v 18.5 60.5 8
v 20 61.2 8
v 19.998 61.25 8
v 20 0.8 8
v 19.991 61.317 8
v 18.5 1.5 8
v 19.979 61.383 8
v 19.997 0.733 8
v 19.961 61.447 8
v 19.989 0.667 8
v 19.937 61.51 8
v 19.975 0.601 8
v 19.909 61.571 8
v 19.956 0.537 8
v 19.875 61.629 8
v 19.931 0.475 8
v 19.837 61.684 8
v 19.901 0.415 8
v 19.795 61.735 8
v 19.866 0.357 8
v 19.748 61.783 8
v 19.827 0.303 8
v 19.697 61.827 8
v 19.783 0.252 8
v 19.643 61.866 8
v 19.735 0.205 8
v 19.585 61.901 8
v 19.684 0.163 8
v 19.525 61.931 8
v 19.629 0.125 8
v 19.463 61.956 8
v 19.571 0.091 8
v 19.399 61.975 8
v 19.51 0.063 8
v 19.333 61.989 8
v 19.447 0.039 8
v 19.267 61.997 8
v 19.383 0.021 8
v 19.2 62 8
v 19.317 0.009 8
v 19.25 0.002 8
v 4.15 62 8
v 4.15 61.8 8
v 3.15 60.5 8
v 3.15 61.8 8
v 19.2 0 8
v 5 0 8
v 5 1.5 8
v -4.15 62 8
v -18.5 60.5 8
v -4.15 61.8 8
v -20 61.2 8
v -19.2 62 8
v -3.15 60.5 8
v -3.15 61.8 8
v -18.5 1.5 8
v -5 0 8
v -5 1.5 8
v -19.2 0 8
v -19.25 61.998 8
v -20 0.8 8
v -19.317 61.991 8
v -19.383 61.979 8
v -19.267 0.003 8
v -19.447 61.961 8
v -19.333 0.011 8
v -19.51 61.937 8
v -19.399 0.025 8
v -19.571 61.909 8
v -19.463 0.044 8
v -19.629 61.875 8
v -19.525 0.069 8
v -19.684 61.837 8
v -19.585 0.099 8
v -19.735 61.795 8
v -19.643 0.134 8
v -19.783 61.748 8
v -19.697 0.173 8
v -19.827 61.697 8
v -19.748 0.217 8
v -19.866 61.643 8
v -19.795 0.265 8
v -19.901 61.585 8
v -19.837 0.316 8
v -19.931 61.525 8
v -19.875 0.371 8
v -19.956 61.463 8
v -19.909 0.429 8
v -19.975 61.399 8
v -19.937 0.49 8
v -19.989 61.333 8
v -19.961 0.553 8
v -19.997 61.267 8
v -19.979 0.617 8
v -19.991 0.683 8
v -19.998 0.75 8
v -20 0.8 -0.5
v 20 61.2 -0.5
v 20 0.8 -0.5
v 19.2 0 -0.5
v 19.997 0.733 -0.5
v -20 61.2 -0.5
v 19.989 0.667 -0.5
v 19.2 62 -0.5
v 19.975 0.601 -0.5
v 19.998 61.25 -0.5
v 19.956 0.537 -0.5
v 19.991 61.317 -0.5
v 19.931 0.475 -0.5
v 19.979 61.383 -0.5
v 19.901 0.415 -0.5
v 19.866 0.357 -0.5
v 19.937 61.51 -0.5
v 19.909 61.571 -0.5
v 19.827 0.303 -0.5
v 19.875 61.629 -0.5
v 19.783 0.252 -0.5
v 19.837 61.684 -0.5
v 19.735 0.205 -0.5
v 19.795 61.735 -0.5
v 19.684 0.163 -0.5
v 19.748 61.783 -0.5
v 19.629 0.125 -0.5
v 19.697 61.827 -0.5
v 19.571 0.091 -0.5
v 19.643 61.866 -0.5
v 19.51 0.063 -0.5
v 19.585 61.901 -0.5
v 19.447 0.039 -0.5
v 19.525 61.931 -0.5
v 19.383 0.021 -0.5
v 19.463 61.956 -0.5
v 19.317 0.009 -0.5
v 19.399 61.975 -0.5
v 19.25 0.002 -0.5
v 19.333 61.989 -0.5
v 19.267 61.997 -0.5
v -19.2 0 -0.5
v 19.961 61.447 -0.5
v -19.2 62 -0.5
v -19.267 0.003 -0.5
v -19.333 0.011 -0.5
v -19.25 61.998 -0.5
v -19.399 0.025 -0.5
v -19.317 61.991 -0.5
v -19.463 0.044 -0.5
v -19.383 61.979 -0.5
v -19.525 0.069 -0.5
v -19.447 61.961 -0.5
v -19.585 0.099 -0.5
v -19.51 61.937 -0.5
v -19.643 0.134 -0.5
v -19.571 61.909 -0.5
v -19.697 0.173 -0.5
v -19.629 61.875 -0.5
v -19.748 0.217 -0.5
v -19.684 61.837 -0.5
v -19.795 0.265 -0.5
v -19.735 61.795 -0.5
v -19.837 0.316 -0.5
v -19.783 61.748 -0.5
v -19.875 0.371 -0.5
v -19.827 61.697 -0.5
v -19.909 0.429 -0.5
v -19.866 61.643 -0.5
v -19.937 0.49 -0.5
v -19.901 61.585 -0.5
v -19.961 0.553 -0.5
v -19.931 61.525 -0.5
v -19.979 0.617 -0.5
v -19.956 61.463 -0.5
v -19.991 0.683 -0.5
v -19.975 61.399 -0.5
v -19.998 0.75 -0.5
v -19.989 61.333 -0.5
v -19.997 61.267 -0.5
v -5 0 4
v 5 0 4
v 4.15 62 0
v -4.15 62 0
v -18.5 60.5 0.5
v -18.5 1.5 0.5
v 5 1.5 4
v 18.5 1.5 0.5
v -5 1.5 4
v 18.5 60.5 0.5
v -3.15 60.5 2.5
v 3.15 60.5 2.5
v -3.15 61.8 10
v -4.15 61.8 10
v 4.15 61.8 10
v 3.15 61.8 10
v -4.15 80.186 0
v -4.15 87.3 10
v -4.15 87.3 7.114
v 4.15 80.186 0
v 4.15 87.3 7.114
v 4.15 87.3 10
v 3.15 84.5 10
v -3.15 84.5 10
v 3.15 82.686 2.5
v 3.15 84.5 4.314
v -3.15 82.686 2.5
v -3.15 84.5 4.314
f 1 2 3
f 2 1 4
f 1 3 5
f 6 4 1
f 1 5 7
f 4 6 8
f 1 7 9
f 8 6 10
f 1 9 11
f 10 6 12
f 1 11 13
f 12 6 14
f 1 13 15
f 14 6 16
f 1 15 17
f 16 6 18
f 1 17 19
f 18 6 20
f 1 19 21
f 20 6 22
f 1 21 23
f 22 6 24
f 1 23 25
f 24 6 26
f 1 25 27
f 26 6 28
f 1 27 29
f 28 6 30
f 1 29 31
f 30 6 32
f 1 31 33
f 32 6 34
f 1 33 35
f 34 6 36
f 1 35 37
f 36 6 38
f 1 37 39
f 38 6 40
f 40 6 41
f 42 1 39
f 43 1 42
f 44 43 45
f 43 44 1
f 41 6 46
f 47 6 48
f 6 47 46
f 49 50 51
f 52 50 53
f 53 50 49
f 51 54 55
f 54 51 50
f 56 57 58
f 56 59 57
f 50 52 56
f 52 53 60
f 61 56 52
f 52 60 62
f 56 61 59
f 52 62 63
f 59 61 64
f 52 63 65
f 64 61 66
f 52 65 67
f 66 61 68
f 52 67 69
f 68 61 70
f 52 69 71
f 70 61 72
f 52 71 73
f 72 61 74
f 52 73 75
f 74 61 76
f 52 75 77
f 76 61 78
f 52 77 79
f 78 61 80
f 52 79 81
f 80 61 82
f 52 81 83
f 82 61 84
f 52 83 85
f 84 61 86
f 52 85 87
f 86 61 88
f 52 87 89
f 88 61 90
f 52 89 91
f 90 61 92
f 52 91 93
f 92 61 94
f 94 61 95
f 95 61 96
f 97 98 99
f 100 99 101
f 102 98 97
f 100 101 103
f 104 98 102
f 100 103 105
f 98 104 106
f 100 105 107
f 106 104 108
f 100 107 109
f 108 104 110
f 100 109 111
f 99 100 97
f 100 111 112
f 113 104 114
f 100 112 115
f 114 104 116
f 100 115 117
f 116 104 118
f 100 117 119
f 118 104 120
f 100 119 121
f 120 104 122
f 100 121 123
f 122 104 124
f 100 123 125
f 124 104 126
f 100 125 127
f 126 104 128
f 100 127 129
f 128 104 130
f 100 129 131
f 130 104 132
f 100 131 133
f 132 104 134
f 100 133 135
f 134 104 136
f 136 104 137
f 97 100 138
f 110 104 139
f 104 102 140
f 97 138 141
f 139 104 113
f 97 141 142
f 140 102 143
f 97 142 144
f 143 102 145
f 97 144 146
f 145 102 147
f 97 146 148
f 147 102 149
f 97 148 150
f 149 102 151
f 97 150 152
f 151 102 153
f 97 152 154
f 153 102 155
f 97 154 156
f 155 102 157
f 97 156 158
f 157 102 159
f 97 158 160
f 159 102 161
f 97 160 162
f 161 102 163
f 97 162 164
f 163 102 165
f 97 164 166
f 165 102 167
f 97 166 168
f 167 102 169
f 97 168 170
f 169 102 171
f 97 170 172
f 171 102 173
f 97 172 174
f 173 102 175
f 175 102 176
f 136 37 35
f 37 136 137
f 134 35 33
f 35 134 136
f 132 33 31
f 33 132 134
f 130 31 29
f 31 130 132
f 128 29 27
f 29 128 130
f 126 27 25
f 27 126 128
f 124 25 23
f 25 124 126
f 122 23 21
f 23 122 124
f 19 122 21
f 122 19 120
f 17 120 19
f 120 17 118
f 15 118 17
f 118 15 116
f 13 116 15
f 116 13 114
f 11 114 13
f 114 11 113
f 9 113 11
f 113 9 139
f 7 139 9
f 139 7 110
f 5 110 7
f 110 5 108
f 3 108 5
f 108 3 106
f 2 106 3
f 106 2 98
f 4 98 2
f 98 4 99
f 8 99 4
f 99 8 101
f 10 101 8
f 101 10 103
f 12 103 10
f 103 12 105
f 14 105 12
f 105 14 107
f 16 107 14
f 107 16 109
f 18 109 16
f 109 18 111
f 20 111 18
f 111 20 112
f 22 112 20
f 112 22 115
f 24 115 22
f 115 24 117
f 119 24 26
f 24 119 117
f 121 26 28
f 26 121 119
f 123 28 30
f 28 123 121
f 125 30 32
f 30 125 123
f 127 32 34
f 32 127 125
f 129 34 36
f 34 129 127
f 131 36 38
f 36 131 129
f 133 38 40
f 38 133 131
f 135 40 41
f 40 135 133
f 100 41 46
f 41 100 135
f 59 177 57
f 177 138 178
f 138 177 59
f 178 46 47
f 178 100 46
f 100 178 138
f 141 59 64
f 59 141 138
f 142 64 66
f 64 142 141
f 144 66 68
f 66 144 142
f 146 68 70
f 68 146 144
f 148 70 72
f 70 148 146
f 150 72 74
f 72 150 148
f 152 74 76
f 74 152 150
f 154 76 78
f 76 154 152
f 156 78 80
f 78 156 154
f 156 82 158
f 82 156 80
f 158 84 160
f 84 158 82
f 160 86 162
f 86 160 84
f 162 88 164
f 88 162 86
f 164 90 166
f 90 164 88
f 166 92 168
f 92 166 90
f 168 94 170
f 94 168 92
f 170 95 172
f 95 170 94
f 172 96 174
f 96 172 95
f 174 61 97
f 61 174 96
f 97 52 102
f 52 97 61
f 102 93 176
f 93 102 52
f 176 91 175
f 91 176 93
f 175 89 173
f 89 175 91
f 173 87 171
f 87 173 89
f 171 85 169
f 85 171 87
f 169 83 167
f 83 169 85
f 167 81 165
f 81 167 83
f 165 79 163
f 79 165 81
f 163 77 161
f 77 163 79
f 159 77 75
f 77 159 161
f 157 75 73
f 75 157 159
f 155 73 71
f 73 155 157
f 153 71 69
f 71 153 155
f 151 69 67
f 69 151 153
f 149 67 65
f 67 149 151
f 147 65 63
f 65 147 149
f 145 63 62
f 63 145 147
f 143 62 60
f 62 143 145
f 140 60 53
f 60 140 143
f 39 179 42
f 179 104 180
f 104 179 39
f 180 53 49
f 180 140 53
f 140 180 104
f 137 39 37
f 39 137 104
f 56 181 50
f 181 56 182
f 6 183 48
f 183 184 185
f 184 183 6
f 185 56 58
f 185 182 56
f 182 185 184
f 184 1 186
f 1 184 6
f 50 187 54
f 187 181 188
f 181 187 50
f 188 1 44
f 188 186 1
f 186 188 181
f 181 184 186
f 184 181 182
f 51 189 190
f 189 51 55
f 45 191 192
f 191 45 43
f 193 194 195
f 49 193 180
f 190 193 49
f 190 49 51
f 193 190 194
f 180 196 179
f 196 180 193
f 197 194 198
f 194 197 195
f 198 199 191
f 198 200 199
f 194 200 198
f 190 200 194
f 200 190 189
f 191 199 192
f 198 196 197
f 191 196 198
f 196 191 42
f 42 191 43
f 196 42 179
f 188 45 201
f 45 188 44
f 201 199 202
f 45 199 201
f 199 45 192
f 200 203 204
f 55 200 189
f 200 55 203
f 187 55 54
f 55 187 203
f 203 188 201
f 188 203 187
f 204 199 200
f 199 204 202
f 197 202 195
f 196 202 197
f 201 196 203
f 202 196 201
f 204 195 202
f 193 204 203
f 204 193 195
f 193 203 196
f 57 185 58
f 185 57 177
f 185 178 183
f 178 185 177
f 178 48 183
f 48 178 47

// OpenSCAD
$fn=75;

BOX_W = 38.4;
BOX_L = 60.4;
BOX_H = 8.5;

WALL = 1.0;

CORNER_RADIUS = 0.8;

MIC_OUTSIDE_W=8.3;
MIC_OUTSIDE_H=10.0;

MIC_INSIDE_W=6.3;
MIC_L=25.5;

MIC_OFFSET_X = 0;
MIC_OFFSET_Y = -20.4;
MIC_OFFSET_Z = 0;

VENT_OFFSET = -4.5;
VENT_L = 19.0;
VENT_R = -19.0;

module roundedRectangle(width, length, radius) {
    difference() {
        offset(r=radius) square([width, length], center=true);
        offset(r=radius - WALL) square([width - WALL, length - WALL], center=true);
    }
}

module mainLid() {
    // sides of box
    linear_extrude(BOX_H)
    roundedRectangle(BOX_W, BOX_L, CORNER_RADIUS);
    // base of box
    translate([0, 0, BOX_H - WALL]) {
        linear_extrude(WALL) square([BOX_W, BOX_L], center=true);
    }
}

module micBox() {
        translate([MIC_OFFSET_X, MIC_OFFSET_Y, MIC_OFFSET_Z]) {
            translate([0, -10.4, 3])
            rotate([90, 0, 0])
            linear_extrude(MIC_L) square([MIC_OUTSIDE_W, MIC_OUTSIDE_H], center=true);
        }
    }
//}


module cutouts() {
    rotate([180, 0, 0]) {   // Flipping the entire object along the X axis
        translate([MIC_OFFSET_X, MIC_OFFSET_Y, MIC_OFFSET_Z]) {
            // Inside mic channel
            translate([0, -3.5, BOX_H-8])
            rotate([90, 0, 0])
            linear_extrude(MIC_L+4.1) square([MIC_INSIDE_W, MIC_OUTSIDE_H], center=true);
        }
    }
    
    // front of keel slope
    translate([-5, MIC_L+29.0, -14])
    rotate([45, 0, 0])
    //(x, z, y)
    cube([10, 11, 8]); 
    
    // Cable exit
    translate([0, -29.0, BOX_H-9.5])
    rotate([90, 0, 0])
    linear_extrude(3.0) square([10, 6], center=true);
    

}

// put it all together
translate([0, 31, 8]) { // offset model to start on 0, 0, 0
    difference() {
        rotate([180, 0, 0]) { // Flipping the entire object along the X axis
            union() {
                mainLid();
                micBox();
            }
        }
        cutouts();
    }
}
